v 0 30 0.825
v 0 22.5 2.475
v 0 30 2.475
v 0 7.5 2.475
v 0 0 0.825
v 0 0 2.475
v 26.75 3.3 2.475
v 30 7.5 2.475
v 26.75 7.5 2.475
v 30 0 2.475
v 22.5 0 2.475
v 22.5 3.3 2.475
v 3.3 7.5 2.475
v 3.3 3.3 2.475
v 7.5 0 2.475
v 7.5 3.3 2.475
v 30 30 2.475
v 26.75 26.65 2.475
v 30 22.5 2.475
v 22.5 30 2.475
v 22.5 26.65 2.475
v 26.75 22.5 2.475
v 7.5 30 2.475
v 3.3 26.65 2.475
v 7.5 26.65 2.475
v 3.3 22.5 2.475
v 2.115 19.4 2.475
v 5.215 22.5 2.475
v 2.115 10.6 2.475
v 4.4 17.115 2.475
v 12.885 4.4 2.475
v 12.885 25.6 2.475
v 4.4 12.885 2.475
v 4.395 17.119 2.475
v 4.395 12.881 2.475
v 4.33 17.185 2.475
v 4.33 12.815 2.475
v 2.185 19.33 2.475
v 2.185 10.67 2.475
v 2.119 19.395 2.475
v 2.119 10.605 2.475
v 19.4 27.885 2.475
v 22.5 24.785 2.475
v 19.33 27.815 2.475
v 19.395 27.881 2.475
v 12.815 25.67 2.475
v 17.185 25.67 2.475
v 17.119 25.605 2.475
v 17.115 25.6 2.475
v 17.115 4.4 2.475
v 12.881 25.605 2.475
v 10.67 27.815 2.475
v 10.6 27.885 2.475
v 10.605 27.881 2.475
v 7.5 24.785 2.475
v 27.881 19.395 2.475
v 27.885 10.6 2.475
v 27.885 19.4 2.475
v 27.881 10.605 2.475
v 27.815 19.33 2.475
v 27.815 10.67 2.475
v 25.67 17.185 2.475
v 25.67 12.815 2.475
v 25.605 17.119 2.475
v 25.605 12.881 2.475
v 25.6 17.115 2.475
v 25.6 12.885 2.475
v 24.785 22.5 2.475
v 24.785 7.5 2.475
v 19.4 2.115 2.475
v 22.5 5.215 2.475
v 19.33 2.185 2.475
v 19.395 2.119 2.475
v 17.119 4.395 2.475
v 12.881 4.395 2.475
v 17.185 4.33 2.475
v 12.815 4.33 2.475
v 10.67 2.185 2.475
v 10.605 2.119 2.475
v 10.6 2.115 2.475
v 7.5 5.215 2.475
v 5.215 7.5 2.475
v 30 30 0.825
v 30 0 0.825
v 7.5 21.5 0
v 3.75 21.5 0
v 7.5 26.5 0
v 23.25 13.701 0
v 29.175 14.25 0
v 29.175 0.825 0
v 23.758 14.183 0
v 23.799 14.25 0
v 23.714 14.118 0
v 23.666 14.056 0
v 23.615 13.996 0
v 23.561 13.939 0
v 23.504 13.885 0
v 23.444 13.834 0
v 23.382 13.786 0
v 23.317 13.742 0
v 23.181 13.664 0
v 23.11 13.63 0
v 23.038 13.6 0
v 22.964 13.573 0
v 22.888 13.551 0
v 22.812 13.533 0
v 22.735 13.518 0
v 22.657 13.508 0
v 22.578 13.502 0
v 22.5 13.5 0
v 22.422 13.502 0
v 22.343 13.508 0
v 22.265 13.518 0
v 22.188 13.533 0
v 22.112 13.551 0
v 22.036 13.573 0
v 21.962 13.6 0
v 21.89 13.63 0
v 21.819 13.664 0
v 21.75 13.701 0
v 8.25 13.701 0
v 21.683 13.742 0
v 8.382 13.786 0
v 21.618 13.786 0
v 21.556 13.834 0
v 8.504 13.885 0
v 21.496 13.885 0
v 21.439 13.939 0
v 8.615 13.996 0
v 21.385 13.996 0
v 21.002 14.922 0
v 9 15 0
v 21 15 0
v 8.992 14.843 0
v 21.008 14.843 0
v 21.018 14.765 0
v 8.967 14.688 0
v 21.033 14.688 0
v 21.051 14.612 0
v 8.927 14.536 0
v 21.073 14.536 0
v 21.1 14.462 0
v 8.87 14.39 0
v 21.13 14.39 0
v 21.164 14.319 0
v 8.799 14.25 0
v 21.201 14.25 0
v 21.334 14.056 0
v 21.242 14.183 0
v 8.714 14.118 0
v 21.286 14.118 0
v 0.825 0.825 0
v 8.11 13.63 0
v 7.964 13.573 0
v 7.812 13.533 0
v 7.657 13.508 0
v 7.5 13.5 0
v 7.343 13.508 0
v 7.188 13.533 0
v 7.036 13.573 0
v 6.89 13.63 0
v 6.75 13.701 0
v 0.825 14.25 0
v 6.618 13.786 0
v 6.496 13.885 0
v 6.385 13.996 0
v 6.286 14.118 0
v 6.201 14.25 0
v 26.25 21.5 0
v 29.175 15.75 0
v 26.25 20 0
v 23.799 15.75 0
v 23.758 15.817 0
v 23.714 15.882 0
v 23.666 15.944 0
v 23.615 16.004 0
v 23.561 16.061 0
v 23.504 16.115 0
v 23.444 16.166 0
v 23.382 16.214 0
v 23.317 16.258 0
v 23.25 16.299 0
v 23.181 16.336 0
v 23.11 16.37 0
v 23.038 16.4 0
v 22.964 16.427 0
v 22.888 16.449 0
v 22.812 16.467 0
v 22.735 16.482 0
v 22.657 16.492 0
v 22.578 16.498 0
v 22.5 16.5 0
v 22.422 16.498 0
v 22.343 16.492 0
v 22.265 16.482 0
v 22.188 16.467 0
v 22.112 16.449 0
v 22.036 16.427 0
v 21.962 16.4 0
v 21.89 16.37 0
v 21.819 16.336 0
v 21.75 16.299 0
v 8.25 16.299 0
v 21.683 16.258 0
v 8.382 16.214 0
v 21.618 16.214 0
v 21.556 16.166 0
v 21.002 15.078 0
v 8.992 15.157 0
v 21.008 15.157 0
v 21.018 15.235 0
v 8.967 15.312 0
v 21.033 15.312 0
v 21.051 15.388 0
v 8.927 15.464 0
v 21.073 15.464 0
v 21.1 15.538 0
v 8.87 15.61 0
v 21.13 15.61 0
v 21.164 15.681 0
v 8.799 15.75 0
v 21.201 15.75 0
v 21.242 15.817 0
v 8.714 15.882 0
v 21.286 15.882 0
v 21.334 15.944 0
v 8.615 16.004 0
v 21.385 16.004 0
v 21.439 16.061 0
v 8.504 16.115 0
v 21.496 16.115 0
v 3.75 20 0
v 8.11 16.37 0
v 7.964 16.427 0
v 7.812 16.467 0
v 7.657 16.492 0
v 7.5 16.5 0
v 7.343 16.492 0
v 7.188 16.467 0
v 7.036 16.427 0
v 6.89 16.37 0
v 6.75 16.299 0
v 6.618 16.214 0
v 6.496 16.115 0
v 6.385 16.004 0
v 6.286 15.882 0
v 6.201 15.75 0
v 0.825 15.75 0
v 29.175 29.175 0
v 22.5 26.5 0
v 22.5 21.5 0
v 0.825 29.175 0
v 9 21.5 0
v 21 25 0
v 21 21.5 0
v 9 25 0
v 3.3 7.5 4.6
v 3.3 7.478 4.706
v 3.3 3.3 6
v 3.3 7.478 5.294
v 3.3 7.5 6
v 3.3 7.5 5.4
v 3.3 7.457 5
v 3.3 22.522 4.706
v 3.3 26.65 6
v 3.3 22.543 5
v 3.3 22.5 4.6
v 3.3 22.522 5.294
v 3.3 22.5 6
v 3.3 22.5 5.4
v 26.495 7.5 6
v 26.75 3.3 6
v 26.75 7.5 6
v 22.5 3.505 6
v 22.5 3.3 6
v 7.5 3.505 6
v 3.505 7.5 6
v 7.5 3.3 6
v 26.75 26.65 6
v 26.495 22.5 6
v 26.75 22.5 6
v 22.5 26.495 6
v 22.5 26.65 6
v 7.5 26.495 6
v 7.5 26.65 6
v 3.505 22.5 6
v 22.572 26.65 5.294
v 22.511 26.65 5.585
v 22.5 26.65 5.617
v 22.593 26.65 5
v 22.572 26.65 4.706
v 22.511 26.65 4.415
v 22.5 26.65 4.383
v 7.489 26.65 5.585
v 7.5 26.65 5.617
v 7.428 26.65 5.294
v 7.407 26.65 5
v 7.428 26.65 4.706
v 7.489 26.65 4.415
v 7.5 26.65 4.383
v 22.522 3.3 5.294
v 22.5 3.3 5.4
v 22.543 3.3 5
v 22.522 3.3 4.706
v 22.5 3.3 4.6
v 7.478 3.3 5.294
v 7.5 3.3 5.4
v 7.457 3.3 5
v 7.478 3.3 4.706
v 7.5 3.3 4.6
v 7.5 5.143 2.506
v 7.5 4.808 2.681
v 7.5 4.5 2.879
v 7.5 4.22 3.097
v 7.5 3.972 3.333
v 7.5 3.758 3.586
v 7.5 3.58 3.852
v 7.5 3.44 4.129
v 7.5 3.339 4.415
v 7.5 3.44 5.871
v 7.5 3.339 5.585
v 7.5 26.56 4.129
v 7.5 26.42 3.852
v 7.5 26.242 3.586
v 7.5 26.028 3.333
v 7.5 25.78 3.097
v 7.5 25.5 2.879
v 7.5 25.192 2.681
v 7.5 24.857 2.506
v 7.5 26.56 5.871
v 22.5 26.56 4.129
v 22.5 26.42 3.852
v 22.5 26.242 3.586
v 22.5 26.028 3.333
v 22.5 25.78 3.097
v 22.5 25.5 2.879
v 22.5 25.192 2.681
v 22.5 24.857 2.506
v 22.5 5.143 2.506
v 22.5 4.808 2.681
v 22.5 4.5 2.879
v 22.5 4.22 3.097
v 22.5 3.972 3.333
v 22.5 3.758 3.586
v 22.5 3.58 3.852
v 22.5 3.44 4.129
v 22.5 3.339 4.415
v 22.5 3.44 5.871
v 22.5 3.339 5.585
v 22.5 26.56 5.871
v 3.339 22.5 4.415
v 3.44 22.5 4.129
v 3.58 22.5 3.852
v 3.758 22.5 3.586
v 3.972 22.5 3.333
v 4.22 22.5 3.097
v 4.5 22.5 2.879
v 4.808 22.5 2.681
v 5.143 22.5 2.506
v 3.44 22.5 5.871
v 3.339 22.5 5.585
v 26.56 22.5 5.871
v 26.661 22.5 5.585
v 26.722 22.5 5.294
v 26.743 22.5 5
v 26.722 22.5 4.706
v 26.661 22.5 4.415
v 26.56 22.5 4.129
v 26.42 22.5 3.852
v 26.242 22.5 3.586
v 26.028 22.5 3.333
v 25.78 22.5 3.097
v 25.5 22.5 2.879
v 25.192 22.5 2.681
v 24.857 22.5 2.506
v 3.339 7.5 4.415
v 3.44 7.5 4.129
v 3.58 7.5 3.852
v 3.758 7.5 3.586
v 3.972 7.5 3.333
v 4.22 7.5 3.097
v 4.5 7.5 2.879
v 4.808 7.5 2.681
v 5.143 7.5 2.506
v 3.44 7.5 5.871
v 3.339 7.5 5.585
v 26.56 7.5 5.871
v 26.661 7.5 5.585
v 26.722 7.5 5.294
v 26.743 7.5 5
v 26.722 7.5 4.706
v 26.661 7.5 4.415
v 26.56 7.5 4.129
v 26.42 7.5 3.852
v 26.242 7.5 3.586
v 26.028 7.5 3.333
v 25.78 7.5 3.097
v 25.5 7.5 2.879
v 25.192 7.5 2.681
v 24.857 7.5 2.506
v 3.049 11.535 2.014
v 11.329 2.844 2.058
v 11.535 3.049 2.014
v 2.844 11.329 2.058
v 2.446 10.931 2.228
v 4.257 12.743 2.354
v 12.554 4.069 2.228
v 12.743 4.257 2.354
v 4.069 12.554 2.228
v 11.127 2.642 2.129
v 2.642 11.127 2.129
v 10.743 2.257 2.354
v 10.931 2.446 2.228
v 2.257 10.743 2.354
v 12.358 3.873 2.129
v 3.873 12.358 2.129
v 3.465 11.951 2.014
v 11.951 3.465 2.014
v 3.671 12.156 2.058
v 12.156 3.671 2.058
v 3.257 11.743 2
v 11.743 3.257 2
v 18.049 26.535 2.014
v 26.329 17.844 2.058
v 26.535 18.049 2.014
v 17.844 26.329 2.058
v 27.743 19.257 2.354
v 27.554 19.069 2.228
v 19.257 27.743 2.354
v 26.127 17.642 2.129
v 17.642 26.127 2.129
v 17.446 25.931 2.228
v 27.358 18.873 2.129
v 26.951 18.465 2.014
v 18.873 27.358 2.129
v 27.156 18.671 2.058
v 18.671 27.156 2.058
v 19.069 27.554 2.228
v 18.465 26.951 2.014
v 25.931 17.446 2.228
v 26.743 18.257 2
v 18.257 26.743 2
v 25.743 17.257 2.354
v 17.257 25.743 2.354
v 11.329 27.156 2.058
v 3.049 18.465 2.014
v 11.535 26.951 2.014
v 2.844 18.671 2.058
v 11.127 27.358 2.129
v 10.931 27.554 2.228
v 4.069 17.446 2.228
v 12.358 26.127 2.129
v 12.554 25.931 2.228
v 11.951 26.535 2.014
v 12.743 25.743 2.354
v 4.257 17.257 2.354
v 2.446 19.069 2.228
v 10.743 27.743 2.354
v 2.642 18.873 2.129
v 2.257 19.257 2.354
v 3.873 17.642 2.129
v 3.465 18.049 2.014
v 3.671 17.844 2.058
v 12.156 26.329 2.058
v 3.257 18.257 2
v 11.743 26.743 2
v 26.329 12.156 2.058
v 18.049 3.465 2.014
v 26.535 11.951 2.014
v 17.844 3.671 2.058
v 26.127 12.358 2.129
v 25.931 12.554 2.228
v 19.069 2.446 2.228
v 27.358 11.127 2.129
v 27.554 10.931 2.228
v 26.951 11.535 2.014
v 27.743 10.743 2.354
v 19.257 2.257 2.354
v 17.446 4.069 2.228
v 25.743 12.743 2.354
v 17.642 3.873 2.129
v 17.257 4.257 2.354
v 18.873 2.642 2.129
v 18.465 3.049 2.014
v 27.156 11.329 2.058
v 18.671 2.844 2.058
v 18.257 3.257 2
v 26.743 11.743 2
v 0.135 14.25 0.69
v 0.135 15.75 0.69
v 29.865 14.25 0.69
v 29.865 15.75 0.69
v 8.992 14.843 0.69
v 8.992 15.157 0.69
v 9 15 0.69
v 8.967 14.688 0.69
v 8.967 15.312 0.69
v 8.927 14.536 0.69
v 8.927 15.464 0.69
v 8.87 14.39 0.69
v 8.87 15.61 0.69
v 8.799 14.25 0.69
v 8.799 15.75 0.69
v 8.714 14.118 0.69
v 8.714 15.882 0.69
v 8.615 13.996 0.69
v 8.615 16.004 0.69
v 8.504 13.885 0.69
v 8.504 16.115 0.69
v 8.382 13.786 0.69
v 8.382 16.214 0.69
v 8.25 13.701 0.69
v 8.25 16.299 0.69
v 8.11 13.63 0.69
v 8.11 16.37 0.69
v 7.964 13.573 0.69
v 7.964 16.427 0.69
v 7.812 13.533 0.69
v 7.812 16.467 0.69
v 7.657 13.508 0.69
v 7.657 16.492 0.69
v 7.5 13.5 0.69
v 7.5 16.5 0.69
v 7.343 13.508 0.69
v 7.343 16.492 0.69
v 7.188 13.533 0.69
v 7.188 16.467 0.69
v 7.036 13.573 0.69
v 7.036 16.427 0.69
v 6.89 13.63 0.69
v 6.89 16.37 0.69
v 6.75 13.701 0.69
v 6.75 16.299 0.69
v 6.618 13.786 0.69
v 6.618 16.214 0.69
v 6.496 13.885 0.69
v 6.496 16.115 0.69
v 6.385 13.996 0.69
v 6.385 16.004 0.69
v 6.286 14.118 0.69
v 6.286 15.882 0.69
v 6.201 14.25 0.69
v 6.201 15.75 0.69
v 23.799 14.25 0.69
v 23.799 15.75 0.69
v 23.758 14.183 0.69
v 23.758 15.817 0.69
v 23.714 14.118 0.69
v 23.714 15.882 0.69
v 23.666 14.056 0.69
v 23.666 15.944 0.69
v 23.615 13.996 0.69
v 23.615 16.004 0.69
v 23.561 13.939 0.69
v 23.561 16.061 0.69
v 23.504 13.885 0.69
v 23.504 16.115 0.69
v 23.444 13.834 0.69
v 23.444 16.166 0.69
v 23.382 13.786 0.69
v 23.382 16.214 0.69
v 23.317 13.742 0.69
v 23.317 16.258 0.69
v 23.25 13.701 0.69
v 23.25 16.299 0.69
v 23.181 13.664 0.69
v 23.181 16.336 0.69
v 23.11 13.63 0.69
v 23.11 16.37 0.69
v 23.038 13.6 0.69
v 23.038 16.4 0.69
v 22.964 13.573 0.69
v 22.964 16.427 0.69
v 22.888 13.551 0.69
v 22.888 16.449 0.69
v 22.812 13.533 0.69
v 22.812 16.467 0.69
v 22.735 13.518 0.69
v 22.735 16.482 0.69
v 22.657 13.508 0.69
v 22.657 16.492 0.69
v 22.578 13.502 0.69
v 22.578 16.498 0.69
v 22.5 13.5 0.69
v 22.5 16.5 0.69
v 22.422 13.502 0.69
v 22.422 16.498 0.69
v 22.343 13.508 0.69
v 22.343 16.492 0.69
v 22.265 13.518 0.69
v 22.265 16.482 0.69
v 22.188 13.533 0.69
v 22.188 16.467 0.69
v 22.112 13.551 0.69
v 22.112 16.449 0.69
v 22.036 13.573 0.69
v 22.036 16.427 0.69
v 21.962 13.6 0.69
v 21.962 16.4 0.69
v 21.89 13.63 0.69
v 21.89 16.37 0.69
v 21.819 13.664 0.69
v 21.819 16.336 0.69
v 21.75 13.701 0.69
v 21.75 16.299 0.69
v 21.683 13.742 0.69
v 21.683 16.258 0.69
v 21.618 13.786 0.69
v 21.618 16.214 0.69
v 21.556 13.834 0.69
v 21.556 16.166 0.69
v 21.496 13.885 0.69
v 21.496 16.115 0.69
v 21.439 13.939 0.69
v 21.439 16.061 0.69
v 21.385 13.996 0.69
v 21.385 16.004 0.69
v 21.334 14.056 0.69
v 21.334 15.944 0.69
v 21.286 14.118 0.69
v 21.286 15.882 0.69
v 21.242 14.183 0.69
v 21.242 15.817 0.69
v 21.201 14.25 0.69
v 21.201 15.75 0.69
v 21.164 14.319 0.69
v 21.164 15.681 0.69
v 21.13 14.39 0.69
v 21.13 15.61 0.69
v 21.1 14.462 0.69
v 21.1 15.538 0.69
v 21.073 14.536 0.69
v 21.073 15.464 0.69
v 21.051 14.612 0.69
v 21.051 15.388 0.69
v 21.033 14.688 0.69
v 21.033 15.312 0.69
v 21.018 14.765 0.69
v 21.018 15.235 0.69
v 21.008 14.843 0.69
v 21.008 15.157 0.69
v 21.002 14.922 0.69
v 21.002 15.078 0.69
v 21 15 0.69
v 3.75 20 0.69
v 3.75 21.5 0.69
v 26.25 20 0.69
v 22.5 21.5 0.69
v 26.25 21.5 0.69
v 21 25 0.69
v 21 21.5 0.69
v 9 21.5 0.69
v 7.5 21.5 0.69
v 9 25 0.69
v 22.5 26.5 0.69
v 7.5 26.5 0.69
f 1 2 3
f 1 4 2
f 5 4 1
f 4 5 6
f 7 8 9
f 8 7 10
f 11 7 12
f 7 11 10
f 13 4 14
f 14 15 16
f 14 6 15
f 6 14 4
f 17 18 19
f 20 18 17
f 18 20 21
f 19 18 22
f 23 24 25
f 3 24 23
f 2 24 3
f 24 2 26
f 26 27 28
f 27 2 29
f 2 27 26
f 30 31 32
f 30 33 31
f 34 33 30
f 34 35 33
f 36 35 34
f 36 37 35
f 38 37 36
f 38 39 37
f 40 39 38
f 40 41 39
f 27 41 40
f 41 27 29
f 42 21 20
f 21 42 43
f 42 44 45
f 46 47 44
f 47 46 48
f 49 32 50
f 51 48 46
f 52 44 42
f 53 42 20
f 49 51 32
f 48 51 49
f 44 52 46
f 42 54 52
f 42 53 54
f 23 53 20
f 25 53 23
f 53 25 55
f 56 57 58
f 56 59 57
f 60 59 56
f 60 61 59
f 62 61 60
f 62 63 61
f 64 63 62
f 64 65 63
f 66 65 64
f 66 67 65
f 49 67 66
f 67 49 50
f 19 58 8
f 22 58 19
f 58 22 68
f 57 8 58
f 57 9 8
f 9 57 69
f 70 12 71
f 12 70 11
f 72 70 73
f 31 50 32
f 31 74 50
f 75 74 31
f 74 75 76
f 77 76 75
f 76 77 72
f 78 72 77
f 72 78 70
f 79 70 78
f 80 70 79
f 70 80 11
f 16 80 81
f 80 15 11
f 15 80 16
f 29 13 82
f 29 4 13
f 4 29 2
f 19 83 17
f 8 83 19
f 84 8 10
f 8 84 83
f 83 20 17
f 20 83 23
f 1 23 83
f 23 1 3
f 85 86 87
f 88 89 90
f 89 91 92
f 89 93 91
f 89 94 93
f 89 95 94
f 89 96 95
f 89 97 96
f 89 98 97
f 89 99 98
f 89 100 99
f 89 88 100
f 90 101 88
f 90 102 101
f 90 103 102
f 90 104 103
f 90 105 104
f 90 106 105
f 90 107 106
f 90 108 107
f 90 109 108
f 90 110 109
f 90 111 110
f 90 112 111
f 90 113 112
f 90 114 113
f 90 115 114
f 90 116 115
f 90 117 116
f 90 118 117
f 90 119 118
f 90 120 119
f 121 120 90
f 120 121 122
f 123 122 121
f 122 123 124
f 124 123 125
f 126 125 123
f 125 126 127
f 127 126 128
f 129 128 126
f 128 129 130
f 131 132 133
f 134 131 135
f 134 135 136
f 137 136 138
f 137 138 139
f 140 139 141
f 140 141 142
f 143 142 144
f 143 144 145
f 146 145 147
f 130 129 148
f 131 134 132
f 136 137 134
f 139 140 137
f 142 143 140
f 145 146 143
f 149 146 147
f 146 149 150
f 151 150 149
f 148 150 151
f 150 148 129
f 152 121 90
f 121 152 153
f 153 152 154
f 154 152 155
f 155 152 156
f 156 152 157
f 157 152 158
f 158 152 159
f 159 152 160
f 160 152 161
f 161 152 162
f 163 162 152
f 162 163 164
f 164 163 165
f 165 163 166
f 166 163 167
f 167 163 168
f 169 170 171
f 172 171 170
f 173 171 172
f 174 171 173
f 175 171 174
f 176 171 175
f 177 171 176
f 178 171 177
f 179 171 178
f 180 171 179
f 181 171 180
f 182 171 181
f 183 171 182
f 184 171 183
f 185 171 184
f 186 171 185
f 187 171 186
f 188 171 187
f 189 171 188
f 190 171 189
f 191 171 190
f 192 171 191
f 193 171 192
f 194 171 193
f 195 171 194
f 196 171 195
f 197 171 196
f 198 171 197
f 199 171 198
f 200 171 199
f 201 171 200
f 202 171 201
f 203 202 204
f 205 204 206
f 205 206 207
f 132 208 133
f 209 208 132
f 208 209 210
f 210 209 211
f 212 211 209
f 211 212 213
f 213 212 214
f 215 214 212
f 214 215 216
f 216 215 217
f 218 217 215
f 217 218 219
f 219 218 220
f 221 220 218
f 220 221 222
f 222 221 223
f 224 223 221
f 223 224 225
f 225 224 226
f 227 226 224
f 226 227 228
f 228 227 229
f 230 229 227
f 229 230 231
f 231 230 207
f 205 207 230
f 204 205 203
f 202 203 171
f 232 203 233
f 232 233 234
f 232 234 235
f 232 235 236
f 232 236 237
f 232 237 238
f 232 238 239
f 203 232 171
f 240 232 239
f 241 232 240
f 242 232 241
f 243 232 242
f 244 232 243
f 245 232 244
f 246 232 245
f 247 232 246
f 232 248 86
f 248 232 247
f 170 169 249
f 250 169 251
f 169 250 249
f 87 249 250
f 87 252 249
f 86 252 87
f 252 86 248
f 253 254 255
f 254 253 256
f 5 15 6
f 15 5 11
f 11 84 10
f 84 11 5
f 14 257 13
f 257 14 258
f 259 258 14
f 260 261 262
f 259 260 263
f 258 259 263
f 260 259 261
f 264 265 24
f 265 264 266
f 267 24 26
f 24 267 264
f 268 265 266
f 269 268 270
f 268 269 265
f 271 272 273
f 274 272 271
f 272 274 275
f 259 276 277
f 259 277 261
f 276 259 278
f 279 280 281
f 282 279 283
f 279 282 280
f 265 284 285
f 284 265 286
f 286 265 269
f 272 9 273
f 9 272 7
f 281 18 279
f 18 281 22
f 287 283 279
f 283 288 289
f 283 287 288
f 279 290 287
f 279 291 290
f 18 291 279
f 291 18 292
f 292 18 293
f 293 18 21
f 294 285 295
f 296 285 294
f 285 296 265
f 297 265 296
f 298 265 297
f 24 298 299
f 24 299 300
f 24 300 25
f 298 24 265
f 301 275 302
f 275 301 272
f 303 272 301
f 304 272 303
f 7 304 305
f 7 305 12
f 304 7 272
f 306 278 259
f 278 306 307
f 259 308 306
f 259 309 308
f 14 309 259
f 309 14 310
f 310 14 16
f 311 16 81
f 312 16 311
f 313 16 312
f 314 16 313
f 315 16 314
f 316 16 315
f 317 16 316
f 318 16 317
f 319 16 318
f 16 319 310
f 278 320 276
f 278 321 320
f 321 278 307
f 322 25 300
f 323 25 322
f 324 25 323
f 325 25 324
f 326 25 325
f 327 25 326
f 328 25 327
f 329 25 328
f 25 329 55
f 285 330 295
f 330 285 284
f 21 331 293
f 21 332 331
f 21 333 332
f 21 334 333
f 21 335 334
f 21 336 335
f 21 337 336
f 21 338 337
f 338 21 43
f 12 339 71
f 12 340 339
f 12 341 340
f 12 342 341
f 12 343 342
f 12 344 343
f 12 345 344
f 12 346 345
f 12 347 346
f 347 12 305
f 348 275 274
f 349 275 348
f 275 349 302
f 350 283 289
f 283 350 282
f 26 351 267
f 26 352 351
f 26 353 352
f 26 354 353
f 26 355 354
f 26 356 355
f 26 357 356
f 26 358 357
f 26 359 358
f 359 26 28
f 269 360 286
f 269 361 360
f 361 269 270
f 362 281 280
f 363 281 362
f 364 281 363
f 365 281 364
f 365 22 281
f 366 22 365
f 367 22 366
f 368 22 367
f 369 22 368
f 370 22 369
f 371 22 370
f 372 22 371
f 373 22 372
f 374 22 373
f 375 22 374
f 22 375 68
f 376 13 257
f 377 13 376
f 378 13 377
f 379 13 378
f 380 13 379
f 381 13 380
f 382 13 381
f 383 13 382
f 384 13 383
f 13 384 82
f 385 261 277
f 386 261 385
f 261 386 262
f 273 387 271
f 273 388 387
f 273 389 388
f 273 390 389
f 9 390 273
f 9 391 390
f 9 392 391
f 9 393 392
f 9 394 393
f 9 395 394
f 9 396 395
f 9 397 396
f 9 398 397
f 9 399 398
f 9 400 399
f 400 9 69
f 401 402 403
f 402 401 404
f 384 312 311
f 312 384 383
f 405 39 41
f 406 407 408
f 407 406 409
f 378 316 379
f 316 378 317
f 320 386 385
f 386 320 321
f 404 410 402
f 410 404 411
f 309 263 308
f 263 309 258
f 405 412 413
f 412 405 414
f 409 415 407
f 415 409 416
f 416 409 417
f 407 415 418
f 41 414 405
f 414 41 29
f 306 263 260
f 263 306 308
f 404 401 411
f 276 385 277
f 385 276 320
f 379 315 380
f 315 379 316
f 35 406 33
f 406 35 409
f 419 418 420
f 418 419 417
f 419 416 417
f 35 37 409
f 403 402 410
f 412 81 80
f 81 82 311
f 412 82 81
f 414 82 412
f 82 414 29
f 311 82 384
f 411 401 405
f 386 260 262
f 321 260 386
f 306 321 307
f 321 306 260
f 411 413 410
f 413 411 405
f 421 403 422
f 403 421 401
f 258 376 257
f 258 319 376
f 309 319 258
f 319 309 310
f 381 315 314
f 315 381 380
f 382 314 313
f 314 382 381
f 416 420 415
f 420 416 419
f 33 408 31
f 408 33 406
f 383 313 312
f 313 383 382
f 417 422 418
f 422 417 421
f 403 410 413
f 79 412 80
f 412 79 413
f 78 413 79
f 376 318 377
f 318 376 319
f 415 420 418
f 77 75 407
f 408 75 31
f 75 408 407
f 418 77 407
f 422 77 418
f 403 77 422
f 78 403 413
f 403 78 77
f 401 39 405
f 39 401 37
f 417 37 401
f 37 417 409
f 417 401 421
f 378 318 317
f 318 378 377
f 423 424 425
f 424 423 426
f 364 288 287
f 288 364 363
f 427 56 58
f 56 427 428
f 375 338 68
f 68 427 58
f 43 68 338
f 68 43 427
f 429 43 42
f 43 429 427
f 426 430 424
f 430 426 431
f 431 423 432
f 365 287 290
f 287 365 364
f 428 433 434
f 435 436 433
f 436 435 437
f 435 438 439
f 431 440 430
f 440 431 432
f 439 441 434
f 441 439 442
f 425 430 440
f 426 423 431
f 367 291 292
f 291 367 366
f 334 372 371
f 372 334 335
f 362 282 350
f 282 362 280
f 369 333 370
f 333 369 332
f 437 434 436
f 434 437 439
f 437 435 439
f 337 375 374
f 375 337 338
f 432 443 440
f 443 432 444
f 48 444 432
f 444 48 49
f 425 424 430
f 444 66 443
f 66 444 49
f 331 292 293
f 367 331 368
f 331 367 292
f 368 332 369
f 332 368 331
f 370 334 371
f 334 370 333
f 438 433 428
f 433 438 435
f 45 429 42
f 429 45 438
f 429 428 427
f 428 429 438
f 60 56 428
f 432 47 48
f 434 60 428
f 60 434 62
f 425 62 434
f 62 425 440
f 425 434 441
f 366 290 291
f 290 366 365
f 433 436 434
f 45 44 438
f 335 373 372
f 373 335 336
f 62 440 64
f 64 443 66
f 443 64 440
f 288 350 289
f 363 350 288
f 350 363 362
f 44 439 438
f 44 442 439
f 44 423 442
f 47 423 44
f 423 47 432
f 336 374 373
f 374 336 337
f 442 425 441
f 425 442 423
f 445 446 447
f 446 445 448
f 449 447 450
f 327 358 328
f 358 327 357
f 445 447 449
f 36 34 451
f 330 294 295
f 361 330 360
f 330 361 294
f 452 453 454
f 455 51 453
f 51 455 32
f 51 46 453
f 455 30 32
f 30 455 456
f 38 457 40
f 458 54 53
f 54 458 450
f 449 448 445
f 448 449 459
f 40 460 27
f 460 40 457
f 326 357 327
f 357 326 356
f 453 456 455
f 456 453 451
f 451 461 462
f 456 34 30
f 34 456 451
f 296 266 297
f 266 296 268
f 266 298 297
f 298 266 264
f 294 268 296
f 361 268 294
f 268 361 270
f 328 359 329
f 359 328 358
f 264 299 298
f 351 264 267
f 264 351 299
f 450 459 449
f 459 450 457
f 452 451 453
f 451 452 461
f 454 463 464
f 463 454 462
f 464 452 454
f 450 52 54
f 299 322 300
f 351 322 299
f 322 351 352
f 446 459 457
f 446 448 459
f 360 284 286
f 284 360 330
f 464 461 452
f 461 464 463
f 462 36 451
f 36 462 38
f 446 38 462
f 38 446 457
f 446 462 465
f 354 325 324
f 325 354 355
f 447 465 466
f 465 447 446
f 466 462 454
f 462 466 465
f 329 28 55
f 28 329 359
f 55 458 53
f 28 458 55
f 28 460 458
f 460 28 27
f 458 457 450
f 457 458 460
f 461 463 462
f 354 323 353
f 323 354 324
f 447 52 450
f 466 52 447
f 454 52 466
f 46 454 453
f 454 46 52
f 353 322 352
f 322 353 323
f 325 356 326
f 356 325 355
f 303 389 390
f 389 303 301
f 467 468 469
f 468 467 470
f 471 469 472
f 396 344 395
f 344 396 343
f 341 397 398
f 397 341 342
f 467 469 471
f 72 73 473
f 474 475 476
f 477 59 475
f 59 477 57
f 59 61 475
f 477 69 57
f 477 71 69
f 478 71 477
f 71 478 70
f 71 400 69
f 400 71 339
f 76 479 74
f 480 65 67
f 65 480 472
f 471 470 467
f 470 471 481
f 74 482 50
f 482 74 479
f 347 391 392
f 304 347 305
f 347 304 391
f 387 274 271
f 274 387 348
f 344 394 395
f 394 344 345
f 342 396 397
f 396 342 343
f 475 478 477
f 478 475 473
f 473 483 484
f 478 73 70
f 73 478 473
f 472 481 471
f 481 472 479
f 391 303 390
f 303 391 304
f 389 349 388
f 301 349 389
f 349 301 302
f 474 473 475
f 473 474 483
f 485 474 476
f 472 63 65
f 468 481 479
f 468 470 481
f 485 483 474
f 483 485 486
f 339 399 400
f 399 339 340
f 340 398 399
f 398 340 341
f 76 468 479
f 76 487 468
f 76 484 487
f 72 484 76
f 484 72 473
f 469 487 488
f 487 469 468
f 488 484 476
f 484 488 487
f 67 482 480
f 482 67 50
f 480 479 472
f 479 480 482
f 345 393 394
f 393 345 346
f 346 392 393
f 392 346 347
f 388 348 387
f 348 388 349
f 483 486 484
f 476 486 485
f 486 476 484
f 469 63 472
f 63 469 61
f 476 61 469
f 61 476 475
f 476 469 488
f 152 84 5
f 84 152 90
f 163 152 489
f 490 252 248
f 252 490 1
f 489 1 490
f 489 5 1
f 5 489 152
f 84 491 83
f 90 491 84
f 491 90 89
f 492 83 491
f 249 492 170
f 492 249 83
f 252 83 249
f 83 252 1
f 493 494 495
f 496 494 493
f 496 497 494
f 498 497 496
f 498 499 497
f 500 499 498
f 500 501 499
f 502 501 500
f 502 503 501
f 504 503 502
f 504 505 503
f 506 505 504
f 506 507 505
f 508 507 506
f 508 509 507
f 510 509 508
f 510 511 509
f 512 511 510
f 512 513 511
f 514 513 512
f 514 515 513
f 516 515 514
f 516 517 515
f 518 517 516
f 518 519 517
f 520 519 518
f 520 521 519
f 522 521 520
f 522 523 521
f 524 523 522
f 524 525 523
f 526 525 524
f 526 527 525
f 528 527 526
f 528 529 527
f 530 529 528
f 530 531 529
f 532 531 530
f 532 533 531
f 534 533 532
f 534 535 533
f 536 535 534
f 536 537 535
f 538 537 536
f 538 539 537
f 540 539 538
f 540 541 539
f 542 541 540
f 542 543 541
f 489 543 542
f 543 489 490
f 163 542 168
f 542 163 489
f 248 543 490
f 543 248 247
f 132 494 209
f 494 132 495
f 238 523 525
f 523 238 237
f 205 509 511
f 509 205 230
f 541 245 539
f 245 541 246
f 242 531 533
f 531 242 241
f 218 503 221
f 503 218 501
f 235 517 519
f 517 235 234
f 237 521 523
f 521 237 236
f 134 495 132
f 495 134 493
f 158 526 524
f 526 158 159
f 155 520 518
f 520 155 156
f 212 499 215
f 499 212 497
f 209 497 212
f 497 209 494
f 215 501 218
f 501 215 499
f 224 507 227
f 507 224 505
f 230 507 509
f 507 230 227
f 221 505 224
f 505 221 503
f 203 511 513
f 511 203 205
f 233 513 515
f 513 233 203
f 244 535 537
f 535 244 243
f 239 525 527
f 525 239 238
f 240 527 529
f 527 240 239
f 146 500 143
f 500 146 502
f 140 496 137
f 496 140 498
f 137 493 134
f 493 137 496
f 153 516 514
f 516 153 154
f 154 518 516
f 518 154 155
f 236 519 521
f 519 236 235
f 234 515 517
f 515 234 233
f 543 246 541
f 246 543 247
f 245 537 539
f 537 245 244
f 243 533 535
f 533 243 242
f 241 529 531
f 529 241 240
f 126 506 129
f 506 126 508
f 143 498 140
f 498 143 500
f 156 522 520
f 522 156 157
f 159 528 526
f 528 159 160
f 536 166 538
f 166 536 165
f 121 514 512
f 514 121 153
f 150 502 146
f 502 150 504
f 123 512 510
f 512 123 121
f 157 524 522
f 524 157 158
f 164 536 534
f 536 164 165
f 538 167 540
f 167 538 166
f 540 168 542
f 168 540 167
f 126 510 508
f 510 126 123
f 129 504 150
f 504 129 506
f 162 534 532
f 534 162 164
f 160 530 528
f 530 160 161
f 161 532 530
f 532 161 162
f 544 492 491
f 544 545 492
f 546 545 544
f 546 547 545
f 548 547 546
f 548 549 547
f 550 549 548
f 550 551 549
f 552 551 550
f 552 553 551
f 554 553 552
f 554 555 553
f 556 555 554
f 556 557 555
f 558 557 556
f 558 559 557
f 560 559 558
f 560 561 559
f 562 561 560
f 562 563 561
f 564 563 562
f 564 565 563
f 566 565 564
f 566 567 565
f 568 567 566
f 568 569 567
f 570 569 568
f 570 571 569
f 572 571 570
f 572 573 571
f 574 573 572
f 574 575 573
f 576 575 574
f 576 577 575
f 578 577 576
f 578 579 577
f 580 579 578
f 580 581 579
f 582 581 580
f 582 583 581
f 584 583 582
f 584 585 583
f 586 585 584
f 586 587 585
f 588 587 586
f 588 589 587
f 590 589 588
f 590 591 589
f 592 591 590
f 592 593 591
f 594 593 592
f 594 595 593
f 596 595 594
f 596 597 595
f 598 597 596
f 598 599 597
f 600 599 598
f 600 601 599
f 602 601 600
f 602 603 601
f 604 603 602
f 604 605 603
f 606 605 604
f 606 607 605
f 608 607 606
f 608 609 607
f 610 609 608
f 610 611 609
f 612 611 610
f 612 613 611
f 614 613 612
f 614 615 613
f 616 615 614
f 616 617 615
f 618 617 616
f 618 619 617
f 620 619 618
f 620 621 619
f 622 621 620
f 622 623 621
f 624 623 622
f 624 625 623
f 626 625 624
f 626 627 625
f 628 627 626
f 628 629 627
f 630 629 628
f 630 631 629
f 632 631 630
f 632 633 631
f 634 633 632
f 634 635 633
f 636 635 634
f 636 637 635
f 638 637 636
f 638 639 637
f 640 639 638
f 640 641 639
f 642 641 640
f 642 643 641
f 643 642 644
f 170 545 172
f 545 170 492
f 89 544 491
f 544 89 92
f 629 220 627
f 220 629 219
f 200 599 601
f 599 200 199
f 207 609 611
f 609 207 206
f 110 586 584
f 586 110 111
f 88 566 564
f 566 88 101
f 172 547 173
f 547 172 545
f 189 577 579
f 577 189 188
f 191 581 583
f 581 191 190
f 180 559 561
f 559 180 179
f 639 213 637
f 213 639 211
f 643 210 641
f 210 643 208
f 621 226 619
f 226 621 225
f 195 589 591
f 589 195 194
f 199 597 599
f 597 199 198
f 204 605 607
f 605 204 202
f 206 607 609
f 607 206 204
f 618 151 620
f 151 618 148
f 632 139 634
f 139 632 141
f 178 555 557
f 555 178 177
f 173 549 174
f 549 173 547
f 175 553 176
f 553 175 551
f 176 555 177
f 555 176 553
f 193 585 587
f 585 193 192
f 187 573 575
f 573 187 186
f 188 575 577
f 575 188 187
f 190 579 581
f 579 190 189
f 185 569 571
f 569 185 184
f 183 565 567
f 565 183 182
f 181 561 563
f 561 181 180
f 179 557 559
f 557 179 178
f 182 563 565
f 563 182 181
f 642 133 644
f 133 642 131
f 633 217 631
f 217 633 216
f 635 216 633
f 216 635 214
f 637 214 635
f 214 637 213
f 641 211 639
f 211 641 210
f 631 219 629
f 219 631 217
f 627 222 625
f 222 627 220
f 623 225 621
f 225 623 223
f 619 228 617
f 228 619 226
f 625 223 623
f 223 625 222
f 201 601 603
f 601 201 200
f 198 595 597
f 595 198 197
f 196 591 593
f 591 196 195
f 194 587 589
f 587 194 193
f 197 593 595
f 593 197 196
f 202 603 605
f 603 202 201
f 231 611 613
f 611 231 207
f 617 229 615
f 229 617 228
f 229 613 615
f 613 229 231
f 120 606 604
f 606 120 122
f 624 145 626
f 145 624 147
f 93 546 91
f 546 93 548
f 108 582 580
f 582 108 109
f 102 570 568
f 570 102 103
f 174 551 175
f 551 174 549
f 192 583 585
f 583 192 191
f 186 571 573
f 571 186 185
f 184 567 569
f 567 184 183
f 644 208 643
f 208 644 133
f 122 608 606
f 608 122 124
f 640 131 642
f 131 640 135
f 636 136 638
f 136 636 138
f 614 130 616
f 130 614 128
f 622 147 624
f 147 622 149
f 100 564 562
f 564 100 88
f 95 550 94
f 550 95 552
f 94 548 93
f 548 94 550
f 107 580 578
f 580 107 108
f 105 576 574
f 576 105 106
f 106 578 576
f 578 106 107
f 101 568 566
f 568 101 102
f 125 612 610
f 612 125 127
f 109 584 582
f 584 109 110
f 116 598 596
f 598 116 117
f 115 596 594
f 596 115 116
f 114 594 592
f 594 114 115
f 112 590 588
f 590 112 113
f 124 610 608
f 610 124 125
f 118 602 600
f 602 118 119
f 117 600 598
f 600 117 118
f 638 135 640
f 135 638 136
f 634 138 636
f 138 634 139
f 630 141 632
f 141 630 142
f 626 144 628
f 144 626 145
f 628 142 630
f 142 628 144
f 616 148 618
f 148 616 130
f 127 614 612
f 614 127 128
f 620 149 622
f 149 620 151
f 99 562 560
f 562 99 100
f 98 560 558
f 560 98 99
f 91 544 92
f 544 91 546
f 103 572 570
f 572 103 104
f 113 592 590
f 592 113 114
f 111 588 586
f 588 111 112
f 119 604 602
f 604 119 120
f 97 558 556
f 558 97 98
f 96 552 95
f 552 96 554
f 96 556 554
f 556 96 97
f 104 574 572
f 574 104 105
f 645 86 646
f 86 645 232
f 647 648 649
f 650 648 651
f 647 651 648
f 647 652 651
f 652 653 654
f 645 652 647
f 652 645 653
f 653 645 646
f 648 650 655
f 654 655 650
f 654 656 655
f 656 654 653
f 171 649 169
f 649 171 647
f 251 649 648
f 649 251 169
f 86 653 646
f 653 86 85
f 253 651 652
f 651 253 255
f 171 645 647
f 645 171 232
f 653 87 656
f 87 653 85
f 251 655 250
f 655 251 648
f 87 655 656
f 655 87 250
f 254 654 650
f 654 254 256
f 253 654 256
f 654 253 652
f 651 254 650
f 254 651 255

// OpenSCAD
// file: settings.scad
cube_width=30;
cube_height=16;
cube_thickness=3.3;

cap_width=30;
cap_height=6;
cap_thickness=3.3;

glyph_depth=0.7;
glyph_thickness=1.5;

photo_resitor_hole_r = 2.4;
spring_contact_hole_r = 3.125;
// file: sym_switch_button.scad
//use <sym_switch_no.scad>

module button(length, width, thickness, height)
{
    translate([0,-thickness/2,0])cube([length/2-width/2, thickness, height]);
    
    translate([length/2-width/2,0,0]) cylinder(h=height, r=thickness, $fn=60);

    translate([(length/2+width/2),-thickness/2,0])cube([(length/2-width/2), thickness, height]);
    
    translate([length/2+width/2,0,0]) cylinder(h=height, r=thickness, $fn=120);

    translate([length/2-3*width/4,width/3,0]) cube([1.5*width, thickness, height]);
    
    translate([length/2-width/2,2*width/3,0]) cube([width, thickness, height]);
    
    translate([length/2-width/2,width/3,0]) cube([thickness, width/3, height]);

    translate([length/2+width/2-thickness,width/3,0]) cube([thickness, width/3, height]);

    //translate([(length/2-width/2),+thickness/2, 0])rotate([0,0,-60])cube([thickness, width, height]);
    
    //translate([3*length/8+thickness,width/3,0]) cube([thickness, width/2, height]);
    //translate([4*length/8,width/2,0]) cube([thickness, width/3, height]);

    //translate([3.5*length/8,2.3*width/3,0]) rotate([0,0,55])cube([thickness, width/3, height]);
    //translate([3.8*length/8,2.25*width/3+thickness,0]) rotate([0,0,-55])cube([thickness, width/3, height]);

    //translate([2.65*length/8, width,0]) cube([width/1.5, thickness, height]);
    //translate([2.65*length/8, width+2*thickness,0]) cube([width/1.5, thickness, height]);
    
}

button(30, 12, 1, 1);
// file: cap_1x1.scad
include <settings.scad>

module cap_1x1(width, height, thickness, holes_mask)
{
    width1=width-thickness;
    shrink_teeth = 0.02;
    st = shrink_teeth;
    difference()
    {
        union()
        {
            cube([width, width, thickness*3/4]);
            translate([thickness+st,thickness+st,0])cube([width-2*(thickness+st-0.025), width-2*(thickness+st+0.025), height]);
        }
        union()
        {
            //translate([width/2,width/2,0])rotate([0,0,45])translate([-width1/2,-width1/2,thickness*3/4]) cube([width1,width1,height]);
            translate([width/4,0,thickness*3/4])cube([width/2,width,height]);
            translate([0,width/4,thickness*3/4])cube([width,width/2,height]);
            translate([width/4,width/4,width/6])rotate([90,0,45])translate([0,0,-height])cylinder(r=height/2, h=2*height, $fn=64);
            translate([3*width/4,3*width/4,width/6])rotate([90,0,45])translate([0,0,-height])cylinder(r=height/2, h=height*2, $fn=64);
            translate([width/4,3*width/4,width/6])rotate([90,0,-45])translate([0,0,-height])cylinder(r=height/2, h=2*height, $fn=64);
            translate([3*width/4,width/4,width/6])rotate([90,0,-45])translate([0,0,-height])cylinder(r=height/2, h=height*2, $fn=64);
            //corners
            translate([0,0.25*thickness,0])rotate([45,0,0]) translate([-0.5*width, -width, -0.5*height]) cube([2*width, width, 2*height]);
            translate([0.25*thickness,0,0]) rotate([0,-45,0]) translate([-width, -0.5*width, -0.5*height]) cube([width, 2*width, 2*height]);
            translate([width-0.25*thickness,0,0]) rotate([0,45,0]) translate([0, 0, -0.5*height]) cube([width, 2*width, 2*height]);
            translate([0,width-0.25*thickness,0]) rotate([-45,0,0]) translate([-0.5*width, 0, -0.5*height]) cube([2*width, width, 2*height]);
            
            if (holes_mask >= 8)
            {
                translate([width/2, thickness-1.5, -0.5]) cylinder(r=1.15, h=height*1.5, $fn=80);
            }
            if ((holes_mask%8) >= 4)
            {
                translate([width/2, width-thickness+1.5, -0.5]) cylinder(r=1.15, h=height*1.5, $fn=80);
            }
            if ((holes_mask%4)>= 2)
            {
                translate([thickness-1.5, width/2, -0.5]) cylinder(r=1.15, h=height*1.5, $fn=80);
            }
            if (holes_mask%2 >= 1)
            {
                translate([width-thickness+1.5, width/2, -0.5]) cylinder(r=1.15, h=height*1.5, $fn=80);
            }
        }
    }
}

cap_1x1(cap_width, cap_height, cap_thickness, 9);
//ring(10,1,1);
//arrow(1, 20, 3, 1);
//transistor_npn(30, 1, 1);
// main file
use <cap_1x1.scad>
use <sym_switch_button.scad>
include <settings.scad>

module cap_1x1_switch_button(width, height, thickness)
{
    difference()
    {
        cap_1x1(width, height, thickness, 0); //3
        translate([0,width/2,-0.01]) button(width, width/2, glyph_thickness, glyph_depth);
    }
}

cap_1x1_switch_button(cap_width, cap_height, cap_thickness);
